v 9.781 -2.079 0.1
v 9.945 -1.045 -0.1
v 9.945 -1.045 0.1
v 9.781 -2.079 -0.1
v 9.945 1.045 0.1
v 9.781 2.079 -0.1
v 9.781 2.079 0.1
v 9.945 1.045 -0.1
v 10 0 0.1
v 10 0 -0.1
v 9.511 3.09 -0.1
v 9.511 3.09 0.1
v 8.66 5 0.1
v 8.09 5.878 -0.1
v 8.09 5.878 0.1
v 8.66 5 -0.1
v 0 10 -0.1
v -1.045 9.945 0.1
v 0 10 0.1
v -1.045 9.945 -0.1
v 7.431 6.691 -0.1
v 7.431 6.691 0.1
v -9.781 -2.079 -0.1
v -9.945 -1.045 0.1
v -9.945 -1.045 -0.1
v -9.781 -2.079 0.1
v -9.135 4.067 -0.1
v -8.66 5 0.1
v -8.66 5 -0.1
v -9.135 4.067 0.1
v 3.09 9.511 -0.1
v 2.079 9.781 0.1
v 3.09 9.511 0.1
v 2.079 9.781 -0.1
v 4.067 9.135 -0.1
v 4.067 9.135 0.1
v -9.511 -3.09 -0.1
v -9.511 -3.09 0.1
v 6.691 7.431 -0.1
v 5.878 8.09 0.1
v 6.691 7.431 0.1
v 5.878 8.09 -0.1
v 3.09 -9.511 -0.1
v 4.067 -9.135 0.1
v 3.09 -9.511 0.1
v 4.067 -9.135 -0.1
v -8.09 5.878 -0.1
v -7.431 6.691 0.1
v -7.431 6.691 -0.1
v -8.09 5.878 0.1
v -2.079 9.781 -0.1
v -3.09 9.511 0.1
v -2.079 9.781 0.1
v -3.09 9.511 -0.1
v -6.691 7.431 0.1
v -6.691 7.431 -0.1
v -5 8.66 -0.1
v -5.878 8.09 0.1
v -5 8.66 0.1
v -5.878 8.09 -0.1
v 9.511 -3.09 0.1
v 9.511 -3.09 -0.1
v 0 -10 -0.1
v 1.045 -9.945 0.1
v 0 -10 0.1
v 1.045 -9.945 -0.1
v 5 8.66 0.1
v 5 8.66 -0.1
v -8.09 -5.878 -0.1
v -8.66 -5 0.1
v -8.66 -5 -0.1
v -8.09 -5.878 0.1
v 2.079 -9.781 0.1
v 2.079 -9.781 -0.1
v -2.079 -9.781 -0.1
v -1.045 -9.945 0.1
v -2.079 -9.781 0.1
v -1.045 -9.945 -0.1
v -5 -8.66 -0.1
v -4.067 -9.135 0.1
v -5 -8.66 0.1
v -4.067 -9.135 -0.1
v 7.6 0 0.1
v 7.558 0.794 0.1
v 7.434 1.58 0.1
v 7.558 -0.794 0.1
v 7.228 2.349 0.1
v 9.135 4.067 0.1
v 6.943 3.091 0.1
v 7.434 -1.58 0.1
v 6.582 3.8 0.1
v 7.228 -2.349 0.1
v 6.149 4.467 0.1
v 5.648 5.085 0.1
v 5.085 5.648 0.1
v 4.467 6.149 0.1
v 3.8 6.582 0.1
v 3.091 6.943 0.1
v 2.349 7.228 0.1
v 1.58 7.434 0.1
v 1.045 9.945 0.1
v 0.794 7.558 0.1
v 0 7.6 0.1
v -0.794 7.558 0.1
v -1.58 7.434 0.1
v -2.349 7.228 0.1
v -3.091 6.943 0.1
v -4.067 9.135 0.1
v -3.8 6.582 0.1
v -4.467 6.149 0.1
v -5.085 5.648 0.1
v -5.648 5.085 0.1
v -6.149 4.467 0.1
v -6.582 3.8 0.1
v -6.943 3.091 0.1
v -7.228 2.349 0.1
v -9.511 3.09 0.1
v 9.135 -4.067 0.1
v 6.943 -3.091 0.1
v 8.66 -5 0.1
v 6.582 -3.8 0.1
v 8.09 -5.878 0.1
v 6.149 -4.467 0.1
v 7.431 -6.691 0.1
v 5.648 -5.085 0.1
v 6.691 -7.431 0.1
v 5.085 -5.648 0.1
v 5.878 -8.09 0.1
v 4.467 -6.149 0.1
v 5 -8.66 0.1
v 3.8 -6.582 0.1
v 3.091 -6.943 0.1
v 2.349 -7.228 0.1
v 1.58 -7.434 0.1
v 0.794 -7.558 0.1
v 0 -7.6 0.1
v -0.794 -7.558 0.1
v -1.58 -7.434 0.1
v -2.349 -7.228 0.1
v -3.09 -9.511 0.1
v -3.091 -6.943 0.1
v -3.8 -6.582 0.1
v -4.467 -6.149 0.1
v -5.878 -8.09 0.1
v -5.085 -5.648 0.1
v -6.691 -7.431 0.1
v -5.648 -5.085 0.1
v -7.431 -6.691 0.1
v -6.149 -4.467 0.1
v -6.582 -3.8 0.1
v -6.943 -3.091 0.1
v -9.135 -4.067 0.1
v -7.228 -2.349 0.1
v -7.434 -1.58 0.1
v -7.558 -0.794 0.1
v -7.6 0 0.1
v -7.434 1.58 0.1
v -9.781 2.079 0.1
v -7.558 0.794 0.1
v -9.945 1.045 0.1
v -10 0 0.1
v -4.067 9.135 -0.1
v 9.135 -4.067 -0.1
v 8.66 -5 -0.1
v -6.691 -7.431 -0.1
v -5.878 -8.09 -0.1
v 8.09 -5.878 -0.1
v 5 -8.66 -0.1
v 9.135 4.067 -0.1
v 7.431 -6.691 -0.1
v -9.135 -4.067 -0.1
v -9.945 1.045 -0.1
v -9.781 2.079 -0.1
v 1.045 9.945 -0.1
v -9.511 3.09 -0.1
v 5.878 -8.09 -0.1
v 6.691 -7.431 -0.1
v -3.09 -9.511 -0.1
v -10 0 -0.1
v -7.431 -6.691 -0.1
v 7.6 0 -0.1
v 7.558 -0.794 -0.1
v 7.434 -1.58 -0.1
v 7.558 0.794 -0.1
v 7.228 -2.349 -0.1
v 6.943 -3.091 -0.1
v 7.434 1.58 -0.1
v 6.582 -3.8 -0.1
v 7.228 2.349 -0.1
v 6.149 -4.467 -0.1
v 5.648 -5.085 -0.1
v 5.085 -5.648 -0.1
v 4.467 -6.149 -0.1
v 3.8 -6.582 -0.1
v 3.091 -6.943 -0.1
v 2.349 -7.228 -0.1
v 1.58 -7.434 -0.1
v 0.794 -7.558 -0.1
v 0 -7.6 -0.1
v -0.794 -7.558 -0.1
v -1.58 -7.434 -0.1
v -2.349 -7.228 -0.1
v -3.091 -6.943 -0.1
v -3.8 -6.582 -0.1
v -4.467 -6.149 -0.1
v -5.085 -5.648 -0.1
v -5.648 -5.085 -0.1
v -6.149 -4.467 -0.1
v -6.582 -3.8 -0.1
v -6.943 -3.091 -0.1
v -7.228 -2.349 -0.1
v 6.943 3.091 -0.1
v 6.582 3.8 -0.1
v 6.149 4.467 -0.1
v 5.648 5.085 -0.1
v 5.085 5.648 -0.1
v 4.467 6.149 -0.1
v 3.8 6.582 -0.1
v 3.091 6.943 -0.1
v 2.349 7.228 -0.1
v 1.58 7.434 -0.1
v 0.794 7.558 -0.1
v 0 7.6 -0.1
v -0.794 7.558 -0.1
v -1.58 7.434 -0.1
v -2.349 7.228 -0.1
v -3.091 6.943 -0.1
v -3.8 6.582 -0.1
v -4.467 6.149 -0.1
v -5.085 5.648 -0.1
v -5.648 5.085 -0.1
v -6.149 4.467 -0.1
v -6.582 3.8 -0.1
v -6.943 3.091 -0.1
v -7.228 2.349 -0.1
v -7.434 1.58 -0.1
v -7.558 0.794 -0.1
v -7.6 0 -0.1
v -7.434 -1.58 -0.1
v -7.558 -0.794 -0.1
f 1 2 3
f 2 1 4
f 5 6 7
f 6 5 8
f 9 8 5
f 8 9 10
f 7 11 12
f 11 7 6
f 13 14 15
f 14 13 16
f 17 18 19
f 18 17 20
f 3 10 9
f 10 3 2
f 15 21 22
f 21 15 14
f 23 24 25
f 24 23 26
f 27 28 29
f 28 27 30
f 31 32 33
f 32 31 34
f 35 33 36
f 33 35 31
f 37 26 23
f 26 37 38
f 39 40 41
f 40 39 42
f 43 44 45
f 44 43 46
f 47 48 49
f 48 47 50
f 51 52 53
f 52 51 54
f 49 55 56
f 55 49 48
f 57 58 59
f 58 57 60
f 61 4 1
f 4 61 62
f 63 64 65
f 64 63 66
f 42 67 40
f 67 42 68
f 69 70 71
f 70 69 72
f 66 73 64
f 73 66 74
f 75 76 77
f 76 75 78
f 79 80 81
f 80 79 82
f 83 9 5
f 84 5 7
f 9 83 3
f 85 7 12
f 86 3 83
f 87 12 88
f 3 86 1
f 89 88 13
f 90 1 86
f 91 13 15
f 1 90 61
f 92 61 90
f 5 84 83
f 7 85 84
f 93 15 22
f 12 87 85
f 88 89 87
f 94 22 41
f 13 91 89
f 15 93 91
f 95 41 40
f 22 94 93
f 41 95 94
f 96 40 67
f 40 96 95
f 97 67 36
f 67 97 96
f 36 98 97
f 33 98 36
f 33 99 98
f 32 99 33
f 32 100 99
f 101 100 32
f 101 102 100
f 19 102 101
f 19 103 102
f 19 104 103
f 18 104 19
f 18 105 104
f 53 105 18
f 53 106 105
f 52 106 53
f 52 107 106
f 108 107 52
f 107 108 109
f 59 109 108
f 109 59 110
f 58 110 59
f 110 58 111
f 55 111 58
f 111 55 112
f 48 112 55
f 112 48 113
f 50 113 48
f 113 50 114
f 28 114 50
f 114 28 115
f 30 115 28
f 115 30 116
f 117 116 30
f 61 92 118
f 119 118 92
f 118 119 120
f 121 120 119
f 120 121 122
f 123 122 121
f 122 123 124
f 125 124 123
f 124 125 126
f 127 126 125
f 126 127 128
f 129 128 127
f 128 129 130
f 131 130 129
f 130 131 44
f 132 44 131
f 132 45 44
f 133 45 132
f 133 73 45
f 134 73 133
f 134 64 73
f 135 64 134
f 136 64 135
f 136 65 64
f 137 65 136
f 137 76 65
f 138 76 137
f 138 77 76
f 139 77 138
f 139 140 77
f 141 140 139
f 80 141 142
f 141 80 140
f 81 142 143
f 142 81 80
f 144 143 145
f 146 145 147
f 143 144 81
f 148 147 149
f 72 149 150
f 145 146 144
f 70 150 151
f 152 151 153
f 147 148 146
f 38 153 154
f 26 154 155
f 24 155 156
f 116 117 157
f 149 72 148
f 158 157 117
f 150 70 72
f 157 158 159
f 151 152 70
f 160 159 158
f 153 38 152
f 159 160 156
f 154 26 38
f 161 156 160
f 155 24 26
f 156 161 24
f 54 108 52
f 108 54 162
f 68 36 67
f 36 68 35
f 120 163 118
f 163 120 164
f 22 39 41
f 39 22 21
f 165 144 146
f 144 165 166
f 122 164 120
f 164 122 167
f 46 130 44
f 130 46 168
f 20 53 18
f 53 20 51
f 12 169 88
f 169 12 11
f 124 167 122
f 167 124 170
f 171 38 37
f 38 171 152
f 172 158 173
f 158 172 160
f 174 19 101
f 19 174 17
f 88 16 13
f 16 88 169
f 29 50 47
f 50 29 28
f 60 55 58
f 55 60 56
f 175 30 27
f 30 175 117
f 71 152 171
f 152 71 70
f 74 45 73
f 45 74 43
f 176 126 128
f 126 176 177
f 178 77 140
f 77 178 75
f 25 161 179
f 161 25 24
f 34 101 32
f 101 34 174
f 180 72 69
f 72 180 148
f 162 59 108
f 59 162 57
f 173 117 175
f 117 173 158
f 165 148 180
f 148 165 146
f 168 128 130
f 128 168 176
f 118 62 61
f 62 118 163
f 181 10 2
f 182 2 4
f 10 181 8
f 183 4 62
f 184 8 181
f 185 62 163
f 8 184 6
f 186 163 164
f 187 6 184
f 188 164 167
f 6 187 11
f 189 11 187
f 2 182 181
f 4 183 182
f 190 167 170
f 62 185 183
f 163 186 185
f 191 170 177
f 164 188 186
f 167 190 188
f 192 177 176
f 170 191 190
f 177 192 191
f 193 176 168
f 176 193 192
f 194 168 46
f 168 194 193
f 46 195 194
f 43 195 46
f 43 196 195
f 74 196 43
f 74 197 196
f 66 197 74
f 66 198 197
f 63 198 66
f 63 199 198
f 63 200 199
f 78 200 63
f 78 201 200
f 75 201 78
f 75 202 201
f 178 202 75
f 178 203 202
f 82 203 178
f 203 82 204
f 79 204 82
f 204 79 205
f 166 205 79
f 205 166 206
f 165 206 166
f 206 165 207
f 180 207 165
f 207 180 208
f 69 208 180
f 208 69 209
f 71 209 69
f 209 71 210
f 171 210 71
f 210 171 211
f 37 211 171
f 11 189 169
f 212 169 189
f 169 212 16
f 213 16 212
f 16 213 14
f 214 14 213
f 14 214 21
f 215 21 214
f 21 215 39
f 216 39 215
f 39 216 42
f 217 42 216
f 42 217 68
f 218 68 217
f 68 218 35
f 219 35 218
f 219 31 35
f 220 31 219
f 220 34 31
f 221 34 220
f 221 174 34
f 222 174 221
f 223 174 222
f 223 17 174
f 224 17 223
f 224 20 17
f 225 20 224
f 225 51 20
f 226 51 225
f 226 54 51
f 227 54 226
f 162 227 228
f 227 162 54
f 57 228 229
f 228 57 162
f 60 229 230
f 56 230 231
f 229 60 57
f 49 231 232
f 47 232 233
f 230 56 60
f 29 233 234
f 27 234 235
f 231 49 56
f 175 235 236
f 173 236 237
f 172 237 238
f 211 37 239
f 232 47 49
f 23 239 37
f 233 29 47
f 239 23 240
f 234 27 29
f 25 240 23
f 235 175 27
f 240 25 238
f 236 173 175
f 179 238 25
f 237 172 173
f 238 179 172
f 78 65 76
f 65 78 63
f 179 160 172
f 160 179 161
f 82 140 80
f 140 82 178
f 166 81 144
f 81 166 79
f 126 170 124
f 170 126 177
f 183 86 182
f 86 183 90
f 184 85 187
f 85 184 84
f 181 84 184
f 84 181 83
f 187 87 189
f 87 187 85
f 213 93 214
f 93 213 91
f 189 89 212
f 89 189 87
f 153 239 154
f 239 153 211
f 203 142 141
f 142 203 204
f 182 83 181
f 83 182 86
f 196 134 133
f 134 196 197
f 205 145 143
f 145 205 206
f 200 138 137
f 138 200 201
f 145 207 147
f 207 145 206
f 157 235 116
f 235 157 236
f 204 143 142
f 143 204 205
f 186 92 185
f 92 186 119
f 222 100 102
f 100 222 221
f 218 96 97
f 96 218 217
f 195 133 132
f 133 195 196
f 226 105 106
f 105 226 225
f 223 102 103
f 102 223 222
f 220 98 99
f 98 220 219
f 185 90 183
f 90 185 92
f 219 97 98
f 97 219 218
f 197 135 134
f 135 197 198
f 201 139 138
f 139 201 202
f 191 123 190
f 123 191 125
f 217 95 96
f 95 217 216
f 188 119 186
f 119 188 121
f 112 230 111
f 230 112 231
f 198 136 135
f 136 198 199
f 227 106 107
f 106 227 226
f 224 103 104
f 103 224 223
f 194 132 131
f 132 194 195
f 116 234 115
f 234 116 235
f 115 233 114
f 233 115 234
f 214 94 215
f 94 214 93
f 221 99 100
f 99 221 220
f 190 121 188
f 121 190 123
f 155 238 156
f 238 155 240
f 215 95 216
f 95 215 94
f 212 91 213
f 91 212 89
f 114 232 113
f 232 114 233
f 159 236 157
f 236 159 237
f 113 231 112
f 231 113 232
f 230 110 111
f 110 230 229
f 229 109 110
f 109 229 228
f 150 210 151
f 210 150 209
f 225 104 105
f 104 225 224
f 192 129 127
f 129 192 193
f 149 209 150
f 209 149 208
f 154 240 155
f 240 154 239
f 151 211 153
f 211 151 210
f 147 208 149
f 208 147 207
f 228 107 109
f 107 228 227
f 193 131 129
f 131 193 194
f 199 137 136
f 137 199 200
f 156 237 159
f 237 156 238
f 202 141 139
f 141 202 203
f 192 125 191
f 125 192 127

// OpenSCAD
// test circle for understanding GCODE
//
// openscad -o slicer_examples/circle_test.stl slicer_examples/circle_test.scad

$fs = 0.1;
$fn = 60;

module circle_test(layer_height, nozzle_diameter, radius, thickness) {
    printer_thickness = nozzle_diameter * thickness;
    center_cut = radius - (2 * printer_thickness);

    difference() {
        cylinder(h=layer_height, r=radius, center=true);
        cylinder(h=layer_height, r=center_cut, center=true);
    }
}

circle_test(0.2, 0.4, 10, 3);
